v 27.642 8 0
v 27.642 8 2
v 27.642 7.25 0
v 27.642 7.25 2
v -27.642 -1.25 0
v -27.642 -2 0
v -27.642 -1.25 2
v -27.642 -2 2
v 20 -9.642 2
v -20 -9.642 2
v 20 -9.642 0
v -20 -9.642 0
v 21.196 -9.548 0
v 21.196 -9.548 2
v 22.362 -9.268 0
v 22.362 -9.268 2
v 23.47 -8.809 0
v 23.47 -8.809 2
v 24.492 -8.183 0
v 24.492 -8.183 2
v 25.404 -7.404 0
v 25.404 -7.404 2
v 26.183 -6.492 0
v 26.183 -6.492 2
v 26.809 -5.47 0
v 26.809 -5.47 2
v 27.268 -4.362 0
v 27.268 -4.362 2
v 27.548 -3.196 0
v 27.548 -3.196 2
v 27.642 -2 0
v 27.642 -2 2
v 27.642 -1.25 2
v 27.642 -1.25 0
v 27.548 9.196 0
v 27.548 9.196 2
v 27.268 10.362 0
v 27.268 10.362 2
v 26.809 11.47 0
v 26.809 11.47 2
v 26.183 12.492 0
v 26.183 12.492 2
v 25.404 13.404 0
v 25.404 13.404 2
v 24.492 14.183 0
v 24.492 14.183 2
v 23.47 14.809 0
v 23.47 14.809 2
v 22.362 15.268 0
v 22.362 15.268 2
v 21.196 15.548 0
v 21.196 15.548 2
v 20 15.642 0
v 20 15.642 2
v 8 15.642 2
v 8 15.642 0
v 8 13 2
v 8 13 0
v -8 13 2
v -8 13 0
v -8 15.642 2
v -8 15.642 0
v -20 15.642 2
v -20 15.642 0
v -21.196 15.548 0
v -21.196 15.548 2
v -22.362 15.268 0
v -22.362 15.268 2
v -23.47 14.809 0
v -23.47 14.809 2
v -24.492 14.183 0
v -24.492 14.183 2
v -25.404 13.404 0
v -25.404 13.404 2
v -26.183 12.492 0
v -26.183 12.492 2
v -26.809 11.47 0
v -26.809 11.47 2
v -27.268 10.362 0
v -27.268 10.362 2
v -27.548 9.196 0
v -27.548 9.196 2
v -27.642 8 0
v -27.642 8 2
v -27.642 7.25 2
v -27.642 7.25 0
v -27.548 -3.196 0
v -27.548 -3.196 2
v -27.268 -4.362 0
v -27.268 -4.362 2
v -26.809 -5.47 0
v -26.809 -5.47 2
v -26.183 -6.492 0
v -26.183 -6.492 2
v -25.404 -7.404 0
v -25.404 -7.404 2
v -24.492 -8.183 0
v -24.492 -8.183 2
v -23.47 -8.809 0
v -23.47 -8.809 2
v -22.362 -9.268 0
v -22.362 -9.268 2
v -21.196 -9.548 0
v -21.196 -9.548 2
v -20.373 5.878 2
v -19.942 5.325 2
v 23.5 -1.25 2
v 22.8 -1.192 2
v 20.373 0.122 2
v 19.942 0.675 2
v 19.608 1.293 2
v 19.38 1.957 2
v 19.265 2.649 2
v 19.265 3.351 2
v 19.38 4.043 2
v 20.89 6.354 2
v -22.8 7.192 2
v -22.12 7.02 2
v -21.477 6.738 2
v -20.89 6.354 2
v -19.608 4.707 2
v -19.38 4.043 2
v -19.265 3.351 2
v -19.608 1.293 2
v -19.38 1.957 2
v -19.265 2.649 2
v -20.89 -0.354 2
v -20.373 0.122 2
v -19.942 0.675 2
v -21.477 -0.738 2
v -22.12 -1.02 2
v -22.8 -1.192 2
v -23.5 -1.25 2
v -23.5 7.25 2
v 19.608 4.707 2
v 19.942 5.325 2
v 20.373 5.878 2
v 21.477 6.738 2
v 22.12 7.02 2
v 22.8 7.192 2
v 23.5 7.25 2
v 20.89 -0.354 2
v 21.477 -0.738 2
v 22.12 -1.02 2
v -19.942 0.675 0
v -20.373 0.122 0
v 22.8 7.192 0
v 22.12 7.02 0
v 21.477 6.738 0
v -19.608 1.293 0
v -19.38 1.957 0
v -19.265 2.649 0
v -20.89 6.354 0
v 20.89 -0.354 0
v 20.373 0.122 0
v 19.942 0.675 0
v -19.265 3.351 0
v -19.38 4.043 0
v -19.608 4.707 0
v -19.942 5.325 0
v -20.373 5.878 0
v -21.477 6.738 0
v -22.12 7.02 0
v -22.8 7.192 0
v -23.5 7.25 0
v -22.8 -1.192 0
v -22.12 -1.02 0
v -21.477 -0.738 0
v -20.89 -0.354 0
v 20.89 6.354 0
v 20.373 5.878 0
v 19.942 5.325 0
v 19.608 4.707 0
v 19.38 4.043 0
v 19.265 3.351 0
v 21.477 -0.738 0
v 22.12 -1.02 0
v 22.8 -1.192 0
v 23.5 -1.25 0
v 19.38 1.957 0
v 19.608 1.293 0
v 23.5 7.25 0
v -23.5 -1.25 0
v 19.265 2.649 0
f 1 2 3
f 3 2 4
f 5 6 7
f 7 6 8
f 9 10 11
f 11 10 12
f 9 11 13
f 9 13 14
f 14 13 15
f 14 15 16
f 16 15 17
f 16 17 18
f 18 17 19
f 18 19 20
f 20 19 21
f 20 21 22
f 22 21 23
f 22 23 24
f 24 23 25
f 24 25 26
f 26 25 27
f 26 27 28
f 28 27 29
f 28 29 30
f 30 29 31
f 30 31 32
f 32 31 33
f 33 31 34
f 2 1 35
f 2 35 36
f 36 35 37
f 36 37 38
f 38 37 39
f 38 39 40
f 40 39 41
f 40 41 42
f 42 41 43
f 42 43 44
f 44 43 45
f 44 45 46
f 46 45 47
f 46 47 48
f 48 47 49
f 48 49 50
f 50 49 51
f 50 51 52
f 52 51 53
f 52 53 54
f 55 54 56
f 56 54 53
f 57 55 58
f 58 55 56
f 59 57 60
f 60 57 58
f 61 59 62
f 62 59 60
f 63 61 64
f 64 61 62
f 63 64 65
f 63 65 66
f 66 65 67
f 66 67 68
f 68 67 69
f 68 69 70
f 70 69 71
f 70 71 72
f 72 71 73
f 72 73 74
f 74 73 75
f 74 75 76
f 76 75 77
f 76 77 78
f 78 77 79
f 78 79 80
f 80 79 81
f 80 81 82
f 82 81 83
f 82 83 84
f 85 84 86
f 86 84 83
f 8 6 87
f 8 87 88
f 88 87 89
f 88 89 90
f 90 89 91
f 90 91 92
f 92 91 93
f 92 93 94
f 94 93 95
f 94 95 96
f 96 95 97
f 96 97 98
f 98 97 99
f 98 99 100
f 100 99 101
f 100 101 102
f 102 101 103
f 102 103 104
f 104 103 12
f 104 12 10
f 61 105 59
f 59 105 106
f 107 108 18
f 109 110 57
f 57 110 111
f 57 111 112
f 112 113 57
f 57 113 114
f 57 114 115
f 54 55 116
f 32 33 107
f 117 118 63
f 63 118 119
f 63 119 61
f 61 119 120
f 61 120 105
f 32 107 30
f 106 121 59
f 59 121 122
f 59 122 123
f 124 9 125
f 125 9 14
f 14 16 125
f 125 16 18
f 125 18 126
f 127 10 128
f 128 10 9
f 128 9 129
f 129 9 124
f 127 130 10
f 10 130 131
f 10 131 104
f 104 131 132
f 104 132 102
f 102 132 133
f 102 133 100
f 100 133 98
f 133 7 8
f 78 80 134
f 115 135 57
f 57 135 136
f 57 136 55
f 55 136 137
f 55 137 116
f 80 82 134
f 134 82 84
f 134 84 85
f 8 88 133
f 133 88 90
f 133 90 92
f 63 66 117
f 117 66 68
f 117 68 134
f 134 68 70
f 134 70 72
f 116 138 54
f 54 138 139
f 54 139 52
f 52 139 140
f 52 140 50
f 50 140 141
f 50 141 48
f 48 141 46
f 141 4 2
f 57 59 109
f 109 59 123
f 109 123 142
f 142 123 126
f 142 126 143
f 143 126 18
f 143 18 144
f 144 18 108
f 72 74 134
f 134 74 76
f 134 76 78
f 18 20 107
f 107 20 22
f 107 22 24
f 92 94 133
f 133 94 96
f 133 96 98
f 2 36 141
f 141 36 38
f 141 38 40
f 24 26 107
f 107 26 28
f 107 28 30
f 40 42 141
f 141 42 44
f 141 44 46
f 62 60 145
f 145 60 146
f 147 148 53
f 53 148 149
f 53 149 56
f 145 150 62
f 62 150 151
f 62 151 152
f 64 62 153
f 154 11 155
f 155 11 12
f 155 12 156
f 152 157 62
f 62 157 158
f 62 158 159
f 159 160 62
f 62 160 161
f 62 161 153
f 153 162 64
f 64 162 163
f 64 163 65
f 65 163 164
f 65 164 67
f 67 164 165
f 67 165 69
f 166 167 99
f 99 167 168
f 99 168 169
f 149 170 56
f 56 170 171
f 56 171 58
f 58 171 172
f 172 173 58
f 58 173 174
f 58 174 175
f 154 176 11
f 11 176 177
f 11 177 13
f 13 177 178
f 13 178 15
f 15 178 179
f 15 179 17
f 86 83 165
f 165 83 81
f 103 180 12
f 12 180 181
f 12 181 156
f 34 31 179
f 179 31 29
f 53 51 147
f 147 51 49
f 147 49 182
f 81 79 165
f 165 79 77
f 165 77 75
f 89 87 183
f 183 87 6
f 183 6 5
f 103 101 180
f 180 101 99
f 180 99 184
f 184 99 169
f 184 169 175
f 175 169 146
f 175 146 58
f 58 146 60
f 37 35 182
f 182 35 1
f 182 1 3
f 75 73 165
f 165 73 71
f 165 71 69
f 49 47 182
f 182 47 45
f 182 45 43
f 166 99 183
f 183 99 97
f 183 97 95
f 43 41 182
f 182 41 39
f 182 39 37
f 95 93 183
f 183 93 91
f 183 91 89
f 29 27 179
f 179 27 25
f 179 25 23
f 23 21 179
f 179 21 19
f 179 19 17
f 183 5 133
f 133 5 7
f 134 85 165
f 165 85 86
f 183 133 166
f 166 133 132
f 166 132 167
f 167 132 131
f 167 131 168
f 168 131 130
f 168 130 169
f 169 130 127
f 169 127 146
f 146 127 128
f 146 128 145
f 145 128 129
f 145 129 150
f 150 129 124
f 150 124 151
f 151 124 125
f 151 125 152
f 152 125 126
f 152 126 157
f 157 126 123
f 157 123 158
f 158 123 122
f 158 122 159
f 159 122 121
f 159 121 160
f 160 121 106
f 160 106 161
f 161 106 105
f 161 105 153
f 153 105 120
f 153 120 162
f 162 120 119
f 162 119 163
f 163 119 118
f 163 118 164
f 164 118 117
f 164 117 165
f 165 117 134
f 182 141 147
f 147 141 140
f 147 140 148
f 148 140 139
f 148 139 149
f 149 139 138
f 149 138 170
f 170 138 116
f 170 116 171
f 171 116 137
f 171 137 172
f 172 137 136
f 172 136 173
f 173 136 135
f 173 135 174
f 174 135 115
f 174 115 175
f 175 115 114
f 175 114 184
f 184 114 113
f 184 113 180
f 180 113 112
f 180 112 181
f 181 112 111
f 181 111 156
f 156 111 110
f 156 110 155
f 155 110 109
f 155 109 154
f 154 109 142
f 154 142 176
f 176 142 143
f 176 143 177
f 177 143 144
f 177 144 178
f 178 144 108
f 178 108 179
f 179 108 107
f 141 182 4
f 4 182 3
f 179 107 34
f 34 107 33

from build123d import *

# Parameters (mm, degrees)
SKETCH_1_R          = 3.25
EXTRUDE_1_DEPTH     = 2
CUT_EXTRUDE_2_DEPTH = 2


with BuildPart() as part:
    # Эскиз1 → Бобышка-Вытянуть1 (new body)
    with BuildSketch(Plane.XY):
        with BuildLine():
            Line((-8, 15.642410702), (-20, 15.642410702))
            ThreePointArc((-20, 15.642410702), (-25.404000432, 13.404000432), (-27.642410702, 8))
            Line((-27.642410702, 8), (-27.642410702, -2))
            ThreePointArc((-27.642410702, -2), (-25.404000432, -7.404000432), (-20, -9.642410702))
            Line((-20, -9.642410702), (20, -9.642410702))
            ThreePointArc((20, -9.642410702), (25.404000432, -7.404000432), (27.642410702, -2))
            Line((27.642410702, -2), (27.642410702, 8))
            ThreePointArc((27.642410702, 8), (25.404000432, 13.404000432), (20, 15.642410702))
            Line((20, 15.642410702), (8, 15.642410702))
            Line((8, 15.642410702), (8, 13))
            Line((8, 13), (-8, 13))
            Line((-8, 13), (-8, 15.642410702))
        make_face()
        with Locations((23.5, 3)):
            Circle(SKETCH_1_R, mode=Mode.SUBTRACT)
        with Locations((-23.5, 3)):
            Circle(SKETCH_1_R, mode=Mode.SUBTRACT)
    extrude(amount=EXTRUDE_1_DEPTH)

    # Эскиз3 → Вырез-Вытянуть2 (cut)
    with BuildSketch(Plane.XY.offset(2)):
        with BuildLine():
            Line((-23.5, -1.25), (-30.303484741, -1.25))
            ThreePointArc((-30.303484741, -1.25), (-34.553484741, 3), (-30.303484741, 7.25))
            Line((-30.303484741, 7.25), (-23.5, 7.25))
            ThreePointArc((-23.5, 7.25), (-19.25, 3), (-23.5, -1.25))
        make_face()
        with BuildLine():
            Line((23.5, -1.25), (30.303484741, -1.25))
            ThreePointArc((30.303484741, -1.25), (34.553484741, 3), (30.303484741, 7.25))
            Line((30.303484741, 7.25), (23.5, 7.25))
            ThreePointArc((23.5, 7.25), (19.25, 3), (23.5, -1.25))
        make_face()
    extrude(amount=-CUT_EXTRUDE_2_DEPTH, mode=Mode.SUBTRACT)


solid = part.part
